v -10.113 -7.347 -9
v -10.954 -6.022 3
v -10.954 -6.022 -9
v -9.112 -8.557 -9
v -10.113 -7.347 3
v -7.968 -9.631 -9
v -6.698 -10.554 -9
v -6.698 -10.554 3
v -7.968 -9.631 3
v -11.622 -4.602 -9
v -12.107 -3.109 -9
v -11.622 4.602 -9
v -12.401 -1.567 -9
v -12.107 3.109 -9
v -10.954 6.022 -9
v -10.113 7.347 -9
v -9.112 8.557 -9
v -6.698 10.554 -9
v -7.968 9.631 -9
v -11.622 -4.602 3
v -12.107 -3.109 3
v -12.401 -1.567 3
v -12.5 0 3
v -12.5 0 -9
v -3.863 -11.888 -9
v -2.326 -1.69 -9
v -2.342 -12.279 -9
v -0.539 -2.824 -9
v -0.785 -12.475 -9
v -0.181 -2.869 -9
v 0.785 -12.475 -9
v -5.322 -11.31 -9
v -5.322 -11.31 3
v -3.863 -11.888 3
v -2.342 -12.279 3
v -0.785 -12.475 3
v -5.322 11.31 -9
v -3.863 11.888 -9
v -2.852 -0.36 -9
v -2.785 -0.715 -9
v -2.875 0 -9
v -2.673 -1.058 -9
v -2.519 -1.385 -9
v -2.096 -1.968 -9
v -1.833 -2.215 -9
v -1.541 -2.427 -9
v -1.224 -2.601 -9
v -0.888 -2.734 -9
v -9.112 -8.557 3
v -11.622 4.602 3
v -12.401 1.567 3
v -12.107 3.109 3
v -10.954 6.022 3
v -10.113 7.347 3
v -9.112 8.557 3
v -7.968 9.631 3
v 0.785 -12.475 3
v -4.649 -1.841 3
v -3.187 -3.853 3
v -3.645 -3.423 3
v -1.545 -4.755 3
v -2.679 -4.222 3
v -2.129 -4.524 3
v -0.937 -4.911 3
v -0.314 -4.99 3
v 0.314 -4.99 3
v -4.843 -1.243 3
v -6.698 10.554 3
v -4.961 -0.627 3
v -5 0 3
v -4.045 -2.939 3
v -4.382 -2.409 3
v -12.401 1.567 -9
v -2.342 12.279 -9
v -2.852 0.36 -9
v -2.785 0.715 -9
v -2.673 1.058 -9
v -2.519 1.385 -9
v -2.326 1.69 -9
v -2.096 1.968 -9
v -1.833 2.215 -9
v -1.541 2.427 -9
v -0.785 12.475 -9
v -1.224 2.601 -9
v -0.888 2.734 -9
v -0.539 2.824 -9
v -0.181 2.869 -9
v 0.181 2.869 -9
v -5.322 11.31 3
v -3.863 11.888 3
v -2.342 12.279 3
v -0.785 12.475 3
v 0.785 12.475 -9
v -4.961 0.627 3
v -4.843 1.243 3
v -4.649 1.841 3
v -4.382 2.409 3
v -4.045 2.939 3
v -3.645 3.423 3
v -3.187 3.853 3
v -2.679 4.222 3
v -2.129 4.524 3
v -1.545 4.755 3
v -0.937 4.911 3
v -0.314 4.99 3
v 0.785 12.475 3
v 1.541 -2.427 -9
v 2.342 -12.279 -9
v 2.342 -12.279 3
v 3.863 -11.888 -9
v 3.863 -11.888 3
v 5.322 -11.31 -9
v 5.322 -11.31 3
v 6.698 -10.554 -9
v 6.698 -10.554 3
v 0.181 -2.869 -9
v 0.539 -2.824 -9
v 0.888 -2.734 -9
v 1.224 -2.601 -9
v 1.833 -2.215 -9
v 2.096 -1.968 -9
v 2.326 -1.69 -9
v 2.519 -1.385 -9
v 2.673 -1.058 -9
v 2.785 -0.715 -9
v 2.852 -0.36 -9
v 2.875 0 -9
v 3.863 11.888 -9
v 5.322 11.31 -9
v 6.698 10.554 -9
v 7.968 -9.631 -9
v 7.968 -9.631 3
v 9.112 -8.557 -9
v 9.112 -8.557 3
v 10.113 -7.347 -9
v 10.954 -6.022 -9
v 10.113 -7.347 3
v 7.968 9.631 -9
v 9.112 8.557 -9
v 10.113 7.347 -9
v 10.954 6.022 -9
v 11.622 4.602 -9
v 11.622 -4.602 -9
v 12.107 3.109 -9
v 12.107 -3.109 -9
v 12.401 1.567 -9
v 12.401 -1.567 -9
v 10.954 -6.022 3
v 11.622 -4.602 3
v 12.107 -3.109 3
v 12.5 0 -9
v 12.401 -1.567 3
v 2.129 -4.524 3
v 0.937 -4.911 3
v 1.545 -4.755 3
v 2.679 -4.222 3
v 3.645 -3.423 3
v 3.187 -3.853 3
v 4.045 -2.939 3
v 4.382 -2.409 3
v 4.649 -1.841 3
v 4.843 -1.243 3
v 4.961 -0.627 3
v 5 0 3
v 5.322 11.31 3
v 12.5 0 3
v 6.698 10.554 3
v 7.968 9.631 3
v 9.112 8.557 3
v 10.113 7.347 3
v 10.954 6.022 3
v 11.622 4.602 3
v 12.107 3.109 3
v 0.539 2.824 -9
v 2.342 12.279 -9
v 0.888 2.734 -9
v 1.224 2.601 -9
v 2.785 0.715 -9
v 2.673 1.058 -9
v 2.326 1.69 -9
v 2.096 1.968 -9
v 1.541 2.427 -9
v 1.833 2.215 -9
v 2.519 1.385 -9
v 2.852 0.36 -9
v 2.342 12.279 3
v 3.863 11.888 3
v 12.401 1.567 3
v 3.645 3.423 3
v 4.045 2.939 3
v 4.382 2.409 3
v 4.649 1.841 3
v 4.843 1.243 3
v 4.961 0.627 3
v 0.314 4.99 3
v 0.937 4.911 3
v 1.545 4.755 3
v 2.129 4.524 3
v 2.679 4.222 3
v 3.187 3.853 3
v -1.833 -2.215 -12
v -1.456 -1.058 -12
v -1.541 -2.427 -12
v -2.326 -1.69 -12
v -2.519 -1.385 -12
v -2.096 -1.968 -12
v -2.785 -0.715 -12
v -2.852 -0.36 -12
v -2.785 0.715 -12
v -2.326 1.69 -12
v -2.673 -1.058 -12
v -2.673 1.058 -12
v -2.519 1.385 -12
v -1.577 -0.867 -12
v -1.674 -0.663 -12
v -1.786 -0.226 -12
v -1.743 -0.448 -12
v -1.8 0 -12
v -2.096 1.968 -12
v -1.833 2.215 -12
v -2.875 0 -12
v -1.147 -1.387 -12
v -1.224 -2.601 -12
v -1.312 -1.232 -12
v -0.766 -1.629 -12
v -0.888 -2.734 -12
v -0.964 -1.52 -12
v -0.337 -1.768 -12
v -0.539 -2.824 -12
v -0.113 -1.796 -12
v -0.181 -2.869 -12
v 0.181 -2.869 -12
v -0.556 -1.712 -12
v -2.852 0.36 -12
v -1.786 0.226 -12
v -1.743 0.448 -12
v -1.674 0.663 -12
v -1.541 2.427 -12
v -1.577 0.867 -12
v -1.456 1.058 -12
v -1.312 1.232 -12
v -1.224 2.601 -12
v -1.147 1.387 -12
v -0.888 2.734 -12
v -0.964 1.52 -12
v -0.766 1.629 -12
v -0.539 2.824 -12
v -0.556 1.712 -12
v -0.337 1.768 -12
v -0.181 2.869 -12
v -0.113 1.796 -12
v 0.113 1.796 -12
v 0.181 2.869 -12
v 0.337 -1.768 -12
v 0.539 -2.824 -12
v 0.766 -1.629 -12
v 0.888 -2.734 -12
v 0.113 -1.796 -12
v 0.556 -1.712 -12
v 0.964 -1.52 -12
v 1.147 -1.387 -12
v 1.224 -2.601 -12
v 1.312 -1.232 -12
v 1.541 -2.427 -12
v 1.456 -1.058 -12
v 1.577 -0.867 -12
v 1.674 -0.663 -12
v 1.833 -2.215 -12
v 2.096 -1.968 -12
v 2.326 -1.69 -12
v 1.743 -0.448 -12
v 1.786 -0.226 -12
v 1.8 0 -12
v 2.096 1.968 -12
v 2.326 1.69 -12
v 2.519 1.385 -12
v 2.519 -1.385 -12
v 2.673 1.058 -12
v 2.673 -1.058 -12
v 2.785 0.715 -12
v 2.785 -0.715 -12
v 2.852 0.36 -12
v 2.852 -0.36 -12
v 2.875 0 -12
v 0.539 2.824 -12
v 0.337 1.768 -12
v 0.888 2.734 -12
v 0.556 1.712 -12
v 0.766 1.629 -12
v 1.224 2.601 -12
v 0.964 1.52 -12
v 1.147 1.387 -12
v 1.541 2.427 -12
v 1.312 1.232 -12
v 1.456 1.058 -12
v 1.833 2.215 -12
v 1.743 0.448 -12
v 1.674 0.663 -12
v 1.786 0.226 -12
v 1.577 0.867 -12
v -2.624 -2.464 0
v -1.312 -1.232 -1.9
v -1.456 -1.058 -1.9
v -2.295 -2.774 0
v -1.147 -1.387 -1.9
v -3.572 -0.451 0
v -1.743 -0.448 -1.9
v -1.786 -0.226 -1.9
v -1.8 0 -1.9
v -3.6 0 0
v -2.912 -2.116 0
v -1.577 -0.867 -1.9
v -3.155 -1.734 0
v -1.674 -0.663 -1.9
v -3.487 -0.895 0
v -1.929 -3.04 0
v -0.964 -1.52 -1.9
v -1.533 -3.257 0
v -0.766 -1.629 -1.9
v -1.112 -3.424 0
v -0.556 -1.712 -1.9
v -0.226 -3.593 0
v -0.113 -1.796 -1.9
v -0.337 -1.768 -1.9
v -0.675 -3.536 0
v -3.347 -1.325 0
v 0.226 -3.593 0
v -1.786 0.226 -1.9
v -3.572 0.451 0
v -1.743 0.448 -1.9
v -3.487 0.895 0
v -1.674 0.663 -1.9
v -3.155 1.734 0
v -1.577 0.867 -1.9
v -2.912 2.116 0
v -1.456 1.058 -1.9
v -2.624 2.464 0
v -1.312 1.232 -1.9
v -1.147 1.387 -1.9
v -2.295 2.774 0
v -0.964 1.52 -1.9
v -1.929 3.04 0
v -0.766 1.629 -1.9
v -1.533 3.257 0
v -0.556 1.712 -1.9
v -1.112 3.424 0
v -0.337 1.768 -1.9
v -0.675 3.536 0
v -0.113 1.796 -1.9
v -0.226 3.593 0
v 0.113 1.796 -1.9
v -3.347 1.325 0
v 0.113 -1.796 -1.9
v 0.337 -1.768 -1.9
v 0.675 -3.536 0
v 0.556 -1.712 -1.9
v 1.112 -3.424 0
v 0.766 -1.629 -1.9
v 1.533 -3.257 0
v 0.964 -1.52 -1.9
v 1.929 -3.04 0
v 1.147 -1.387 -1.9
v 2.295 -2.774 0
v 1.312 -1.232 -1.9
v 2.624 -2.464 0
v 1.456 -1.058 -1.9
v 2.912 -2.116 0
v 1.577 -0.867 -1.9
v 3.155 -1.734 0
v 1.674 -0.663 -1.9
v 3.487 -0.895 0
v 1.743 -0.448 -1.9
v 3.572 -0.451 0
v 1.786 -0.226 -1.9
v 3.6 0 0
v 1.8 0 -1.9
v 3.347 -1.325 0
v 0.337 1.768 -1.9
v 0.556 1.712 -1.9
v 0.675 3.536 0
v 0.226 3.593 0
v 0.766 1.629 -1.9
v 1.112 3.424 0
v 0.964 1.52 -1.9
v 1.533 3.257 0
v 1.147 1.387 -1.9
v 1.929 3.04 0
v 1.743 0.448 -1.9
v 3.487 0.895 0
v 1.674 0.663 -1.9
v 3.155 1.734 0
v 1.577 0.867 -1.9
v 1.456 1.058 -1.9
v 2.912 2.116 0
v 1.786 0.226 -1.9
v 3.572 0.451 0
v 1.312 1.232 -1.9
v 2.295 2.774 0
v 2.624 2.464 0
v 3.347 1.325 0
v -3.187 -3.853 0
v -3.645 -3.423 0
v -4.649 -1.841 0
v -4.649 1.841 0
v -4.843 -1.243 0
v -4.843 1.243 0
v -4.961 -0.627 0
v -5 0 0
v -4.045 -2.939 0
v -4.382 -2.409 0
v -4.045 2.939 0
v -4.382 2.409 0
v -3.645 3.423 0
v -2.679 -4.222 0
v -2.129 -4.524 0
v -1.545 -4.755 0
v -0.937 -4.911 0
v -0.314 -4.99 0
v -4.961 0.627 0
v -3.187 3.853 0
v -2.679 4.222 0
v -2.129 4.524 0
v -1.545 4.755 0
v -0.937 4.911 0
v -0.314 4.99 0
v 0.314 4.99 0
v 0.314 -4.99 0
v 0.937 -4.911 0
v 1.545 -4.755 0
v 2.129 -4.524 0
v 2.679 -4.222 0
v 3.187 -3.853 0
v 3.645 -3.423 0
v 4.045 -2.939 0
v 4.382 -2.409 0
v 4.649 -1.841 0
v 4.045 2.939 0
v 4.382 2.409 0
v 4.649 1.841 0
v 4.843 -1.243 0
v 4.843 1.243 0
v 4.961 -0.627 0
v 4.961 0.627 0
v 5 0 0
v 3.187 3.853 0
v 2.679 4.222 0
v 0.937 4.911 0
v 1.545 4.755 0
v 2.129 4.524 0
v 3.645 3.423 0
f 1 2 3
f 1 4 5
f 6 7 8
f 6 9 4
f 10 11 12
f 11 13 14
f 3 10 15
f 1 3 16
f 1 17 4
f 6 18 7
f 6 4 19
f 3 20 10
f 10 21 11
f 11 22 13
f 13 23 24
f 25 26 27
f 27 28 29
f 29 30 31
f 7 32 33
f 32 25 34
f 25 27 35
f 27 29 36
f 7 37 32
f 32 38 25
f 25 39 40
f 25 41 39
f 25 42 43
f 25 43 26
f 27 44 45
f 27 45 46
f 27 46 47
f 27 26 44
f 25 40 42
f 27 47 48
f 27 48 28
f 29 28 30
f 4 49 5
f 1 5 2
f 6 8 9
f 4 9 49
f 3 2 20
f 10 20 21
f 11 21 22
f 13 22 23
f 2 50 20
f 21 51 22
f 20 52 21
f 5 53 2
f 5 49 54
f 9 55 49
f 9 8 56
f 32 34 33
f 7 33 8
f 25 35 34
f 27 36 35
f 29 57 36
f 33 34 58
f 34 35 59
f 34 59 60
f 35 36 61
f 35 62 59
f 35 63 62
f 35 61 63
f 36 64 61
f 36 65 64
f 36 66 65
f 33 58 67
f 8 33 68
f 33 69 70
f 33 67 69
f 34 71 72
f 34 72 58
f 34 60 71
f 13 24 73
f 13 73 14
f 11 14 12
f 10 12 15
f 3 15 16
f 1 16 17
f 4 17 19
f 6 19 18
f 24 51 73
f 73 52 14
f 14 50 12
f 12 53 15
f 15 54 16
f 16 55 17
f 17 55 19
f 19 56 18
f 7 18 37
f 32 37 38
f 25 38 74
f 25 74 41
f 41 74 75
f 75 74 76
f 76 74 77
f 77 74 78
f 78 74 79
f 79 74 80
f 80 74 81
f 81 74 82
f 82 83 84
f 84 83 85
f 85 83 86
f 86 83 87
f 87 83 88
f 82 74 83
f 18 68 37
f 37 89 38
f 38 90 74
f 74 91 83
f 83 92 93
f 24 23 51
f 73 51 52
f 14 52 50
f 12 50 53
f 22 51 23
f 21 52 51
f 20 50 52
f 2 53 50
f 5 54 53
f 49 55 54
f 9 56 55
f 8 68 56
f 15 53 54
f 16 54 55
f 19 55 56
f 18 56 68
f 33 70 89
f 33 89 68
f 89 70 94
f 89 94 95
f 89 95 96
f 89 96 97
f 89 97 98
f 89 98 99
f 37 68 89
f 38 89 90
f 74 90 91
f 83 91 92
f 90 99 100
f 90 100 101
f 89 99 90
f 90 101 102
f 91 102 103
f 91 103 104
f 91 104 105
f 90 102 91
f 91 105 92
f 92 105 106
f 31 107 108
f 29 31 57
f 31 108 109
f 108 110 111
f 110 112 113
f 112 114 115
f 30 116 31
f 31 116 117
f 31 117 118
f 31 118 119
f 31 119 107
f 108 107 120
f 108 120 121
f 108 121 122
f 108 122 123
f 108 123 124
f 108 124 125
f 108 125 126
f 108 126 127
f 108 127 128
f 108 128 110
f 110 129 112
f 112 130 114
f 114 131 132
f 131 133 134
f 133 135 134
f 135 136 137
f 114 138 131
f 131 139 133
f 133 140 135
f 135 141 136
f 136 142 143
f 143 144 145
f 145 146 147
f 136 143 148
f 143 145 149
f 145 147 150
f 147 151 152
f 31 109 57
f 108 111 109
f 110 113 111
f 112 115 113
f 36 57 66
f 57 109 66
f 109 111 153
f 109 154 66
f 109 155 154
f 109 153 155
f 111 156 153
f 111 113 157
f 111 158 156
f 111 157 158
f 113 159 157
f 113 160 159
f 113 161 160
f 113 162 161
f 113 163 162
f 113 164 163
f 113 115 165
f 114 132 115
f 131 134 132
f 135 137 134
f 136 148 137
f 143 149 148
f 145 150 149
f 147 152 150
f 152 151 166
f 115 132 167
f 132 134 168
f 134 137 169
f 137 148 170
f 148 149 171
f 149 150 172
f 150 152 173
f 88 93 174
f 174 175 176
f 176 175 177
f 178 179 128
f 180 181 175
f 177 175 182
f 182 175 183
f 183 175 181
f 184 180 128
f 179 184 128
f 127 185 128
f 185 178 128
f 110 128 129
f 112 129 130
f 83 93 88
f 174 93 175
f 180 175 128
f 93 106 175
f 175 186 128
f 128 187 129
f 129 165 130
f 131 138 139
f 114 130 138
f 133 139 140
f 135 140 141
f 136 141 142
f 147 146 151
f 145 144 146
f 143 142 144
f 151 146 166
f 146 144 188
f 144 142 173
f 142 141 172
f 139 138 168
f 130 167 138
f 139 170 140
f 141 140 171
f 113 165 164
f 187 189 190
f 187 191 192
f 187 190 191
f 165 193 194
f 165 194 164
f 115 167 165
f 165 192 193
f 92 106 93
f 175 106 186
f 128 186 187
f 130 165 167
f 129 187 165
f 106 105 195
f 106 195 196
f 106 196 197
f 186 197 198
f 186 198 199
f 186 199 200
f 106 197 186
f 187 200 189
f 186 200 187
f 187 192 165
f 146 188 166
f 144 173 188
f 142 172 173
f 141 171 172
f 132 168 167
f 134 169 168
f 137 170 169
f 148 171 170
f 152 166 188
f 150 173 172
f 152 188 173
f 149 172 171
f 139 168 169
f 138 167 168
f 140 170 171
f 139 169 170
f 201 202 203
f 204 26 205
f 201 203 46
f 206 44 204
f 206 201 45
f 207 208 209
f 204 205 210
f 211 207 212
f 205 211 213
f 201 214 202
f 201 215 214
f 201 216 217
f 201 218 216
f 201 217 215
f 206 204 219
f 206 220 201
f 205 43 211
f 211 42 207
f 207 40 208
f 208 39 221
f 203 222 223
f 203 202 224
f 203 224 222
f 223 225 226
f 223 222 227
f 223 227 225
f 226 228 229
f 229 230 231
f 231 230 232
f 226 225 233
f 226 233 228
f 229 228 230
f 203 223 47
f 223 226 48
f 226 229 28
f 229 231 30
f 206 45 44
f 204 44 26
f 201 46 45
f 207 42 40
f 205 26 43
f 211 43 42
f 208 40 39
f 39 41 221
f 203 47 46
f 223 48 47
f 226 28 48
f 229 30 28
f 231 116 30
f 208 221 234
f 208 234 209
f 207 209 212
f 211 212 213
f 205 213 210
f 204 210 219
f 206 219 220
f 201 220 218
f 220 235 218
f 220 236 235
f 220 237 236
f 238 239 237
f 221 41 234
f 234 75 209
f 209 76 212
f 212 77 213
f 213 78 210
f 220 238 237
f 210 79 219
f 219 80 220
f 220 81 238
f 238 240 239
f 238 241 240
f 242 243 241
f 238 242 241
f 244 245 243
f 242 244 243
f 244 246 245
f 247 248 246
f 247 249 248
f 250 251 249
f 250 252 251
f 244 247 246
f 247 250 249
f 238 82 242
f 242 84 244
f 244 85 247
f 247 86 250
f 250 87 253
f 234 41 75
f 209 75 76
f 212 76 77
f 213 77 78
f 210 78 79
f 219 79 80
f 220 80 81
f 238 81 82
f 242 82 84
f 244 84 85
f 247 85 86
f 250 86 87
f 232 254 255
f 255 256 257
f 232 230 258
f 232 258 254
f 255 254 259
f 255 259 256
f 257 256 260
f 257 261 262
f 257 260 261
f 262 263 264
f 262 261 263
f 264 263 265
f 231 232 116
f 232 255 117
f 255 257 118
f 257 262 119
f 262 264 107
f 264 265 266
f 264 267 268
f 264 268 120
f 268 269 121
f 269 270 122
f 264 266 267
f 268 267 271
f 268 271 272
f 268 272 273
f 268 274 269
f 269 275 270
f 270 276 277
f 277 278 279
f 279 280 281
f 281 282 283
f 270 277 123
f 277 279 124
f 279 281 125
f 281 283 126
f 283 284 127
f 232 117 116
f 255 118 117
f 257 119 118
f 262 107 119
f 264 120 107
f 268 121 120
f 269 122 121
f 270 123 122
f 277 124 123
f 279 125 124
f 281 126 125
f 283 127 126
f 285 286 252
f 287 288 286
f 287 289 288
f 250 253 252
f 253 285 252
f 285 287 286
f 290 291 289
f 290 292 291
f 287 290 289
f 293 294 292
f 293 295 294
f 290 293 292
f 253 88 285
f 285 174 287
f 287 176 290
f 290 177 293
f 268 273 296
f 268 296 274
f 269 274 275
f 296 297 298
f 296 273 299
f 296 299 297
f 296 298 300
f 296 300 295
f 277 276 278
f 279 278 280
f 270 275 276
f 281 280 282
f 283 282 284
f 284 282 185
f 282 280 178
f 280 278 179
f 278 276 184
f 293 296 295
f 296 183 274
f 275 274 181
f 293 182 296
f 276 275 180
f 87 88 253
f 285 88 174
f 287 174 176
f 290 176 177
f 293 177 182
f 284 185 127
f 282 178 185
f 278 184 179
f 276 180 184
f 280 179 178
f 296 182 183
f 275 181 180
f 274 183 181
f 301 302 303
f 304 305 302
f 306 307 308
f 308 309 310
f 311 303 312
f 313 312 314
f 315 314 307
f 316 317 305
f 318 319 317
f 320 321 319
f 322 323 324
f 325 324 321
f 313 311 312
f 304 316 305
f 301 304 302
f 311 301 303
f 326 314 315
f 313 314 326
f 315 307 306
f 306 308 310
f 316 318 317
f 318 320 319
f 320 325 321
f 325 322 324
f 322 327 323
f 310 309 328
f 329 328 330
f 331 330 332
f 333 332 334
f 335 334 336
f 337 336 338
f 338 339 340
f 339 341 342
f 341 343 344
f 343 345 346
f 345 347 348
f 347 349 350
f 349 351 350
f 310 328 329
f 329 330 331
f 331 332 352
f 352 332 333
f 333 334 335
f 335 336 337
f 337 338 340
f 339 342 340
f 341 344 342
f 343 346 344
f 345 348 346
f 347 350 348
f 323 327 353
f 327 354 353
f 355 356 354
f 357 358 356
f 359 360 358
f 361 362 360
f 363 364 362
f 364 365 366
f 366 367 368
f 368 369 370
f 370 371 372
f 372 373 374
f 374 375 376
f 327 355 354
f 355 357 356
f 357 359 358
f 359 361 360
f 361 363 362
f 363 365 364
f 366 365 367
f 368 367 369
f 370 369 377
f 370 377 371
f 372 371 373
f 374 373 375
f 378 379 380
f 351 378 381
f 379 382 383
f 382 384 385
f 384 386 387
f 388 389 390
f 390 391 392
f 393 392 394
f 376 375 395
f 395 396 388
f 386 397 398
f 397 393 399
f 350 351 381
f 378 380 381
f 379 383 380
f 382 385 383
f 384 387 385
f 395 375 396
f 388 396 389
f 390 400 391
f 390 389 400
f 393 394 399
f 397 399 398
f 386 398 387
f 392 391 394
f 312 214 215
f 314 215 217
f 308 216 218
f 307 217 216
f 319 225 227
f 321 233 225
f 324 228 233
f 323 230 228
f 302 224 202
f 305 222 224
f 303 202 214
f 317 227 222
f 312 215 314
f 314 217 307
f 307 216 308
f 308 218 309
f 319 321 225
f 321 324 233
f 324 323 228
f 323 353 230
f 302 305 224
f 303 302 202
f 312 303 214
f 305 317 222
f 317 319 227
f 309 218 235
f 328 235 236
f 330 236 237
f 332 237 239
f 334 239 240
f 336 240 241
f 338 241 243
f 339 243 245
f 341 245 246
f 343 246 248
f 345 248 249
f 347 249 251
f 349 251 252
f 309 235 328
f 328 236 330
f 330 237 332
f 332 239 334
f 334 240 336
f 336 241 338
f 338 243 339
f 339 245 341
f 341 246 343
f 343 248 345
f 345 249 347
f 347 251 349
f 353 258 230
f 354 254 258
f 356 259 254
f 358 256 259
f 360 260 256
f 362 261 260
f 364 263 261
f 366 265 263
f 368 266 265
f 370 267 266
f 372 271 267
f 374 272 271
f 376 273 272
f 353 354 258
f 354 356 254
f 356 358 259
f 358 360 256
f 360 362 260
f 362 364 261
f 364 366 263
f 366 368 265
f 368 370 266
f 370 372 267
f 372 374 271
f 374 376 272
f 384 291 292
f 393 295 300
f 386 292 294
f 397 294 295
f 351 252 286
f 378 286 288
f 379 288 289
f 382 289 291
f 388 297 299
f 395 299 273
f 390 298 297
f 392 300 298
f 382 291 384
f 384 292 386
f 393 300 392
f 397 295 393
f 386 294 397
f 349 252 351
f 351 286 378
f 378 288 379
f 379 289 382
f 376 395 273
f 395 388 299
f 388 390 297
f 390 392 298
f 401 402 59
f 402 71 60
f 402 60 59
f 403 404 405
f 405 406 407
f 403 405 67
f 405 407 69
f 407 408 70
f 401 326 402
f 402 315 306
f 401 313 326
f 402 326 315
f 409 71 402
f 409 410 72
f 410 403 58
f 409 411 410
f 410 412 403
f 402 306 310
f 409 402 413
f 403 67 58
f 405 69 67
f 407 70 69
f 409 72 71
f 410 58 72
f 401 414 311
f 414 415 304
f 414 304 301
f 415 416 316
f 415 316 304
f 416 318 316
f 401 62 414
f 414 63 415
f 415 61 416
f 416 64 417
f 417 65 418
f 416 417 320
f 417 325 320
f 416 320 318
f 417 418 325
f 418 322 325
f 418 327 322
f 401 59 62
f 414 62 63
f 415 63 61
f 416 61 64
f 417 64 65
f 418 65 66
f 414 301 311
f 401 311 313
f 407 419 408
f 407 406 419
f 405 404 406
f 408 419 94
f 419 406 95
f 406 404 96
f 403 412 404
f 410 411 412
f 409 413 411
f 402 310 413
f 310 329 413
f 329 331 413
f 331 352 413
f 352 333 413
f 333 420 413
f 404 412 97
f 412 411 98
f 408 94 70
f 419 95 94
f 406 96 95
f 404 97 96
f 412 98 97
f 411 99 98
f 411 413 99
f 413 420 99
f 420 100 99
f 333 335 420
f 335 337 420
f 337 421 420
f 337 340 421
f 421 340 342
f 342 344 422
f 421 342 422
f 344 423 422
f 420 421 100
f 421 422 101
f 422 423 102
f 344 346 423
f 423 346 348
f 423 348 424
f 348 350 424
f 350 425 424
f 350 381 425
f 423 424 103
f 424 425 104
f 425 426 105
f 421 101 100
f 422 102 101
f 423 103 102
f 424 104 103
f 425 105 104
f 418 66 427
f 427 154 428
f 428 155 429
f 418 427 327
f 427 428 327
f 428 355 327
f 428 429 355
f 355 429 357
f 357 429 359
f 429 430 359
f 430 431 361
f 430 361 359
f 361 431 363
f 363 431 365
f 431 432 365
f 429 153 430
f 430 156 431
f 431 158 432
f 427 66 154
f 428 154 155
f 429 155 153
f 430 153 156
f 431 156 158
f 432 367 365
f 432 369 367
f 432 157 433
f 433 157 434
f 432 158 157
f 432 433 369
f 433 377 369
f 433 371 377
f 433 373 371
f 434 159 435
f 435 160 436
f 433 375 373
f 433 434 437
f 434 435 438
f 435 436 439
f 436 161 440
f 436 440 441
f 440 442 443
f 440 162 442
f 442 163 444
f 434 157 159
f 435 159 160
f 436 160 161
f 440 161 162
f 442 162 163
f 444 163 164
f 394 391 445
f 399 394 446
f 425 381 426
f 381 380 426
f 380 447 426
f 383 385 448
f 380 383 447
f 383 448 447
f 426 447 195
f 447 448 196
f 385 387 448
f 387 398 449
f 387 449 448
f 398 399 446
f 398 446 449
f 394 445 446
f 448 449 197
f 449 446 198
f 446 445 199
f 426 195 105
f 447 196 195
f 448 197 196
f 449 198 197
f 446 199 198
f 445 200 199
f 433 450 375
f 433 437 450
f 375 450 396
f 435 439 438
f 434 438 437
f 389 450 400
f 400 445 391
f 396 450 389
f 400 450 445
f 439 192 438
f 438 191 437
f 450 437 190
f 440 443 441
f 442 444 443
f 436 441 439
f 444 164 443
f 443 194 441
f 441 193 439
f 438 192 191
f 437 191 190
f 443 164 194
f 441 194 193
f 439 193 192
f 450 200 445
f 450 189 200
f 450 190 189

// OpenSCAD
$fn = 50;

difference() {
	union() {
		translate(v = [0, 0, -9.0]) {
			cylinder(h = 12, r = 12.5);
		}
		#translate(v = [0, 0, -12.0]) {
			cylinder(h = 12, r = 2.875);
		}
	}
	union() {
		translate(v = [0, 0, 0]) {
			rotate(a = [0, 0, 0]) {
				difference() {
					union() {
						translate(v = [0, 0, -12.0]) {
							cylinder(h = 12, r = 1.5);
						}
						translate(v = [0, 0, -1.9]) {
							cylinder(h = 1.9, r1 = 1.8, r2 = 3.6);
						}
						translate(v = [0, 0, -12.0]) {
							cylinder(h = 12, r = 1.8);
						}
						translate(v = [0, 0, -12.0]) {
							cylinder(h = 12, r = 1.5);
						}
					}
					union();
				}
			}
		}
		#cylinder(h = 3, r = 5.0);
	}
}
